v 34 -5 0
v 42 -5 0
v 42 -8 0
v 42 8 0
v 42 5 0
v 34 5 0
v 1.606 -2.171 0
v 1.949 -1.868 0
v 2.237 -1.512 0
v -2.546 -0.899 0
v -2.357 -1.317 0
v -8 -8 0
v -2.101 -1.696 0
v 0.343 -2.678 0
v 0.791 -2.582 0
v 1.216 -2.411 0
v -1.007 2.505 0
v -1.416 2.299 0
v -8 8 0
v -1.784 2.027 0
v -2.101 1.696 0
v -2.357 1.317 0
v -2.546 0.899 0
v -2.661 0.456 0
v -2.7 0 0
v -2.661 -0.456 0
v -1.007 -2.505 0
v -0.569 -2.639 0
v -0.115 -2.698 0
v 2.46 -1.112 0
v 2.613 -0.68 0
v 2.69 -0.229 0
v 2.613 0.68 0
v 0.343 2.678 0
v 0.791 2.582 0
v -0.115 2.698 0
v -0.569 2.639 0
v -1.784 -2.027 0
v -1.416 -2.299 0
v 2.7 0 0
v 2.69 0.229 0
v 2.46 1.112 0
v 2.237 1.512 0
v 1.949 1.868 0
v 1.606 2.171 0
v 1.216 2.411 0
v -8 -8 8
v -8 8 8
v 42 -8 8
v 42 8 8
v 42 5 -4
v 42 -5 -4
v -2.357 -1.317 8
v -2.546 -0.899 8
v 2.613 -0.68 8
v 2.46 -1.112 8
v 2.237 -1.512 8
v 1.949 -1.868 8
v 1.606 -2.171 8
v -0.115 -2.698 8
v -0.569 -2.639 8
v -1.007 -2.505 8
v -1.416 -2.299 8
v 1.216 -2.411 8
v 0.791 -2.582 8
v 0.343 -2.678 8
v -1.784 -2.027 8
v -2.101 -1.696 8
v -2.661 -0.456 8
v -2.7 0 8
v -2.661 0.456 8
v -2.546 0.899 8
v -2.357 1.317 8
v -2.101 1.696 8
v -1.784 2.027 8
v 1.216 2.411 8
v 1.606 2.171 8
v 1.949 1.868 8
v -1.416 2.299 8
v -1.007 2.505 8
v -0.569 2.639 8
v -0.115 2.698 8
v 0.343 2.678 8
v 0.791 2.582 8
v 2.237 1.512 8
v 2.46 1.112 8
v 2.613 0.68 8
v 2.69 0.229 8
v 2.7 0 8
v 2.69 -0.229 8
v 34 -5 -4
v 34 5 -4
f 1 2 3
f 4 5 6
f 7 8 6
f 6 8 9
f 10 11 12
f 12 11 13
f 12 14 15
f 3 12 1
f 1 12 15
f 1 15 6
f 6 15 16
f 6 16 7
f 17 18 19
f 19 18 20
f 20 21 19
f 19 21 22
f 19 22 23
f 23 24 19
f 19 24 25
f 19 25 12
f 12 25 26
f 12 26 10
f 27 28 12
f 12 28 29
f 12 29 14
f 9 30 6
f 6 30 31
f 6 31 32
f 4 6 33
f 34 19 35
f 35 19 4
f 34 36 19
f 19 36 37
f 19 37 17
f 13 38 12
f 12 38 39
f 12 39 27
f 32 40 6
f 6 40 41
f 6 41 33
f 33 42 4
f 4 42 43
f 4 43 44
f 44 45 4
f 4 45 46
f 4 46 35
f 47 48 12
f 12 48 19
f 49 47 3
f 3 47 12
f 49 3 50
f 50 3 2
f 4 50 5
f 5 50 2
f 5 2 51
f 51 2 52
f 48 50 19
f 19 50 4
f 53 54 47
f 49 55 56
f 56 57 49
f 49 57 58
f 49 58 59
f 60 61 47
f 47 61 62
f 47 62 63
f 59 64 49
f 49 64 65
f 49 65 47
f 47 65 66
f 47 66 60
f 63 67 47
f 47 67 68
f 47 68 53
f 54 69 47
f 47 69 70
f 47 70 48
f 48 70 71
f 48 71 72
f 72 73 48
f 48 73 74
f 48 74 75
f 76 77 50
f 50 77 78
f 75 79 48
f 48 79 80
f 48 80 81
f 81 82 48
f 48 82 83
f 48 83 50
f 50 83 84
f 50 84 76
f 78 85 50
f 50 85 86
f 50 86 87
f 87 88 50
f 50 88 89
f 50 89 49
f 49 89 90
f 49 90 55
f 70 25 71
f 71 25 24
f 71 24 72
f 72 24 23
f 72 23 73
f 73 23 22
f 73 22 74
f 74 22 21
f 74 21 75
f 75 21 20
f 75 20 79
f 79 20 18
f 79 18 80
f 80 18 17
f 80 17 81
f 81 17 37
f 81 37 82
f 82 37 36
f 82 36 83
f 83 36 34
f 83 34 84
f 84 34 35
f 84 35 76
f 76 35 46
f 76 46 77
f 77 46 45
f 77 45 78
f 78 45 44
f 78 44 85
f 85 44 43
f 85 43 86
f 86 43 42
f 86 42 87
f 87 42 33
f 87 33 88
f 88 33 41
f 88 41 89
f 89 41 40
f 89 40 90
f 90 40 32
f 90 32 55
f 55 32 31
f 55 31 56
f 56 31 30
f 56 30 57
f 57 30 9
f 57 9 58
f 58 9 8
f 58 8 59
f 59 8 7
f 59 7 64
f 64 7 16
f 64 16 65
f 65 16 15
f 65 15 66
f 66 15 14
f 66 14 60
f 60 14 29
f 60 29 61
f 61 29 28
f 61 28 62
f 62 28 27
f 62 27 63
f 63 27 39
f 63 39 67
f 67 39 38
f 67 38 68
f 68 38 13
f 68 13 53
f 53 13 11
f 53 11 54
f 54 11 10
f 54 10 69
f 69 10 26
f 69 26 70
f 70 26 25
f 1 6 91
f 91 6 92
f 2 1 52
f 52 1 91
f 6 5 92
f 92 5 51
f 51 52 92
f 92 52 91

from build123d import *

# Parameters (mm, degrees)
SKETCH2_W                  = 50
SKETCH2_H                  = 16
CLAMP_ARM_DEPTH            = 8
SKETCH3_R                  = 2.7
PIVOT_BOLT_CLEARANCE_DEPTH = 8
CONTACT_NOSE_START         = -4
SKETCH4_W                  = 8
SKETCH4_H                  = 10
CONTACT_NOSE_DEPTH         = 4


with BuildPart() as part:
    # Sketch2 → Clamp_arm (new body)
    with BuildSketch(Plane.XY):
        with Locations((17, 0)):
            Rectangle(SKETCH2_W, SKETCH2_H)
    extrude(amount=CLAMP_ARM_DEPTH)

    # Sketch3 → Pivot_bolt_clearance (cut)
    with BuildSketch(Plane.XY):
        Circle(SKETCH3_R)
    extrude(amount=PIVOT_BOLT_CLEARANCE_DEPTH, mode=Mode.SUBTRACT)

    # Sketch4 → Contact_nose (add)
    with BuildSketch(Plane.XY.offset(CONTACT_NOSE_START)):
        with Locations((38, 0)):
            Rectangle(SKETCH4_W, SKETCH4_H)
    extrude(amount=CONTACT_NOSE_DEPTH)


solid = part.part
